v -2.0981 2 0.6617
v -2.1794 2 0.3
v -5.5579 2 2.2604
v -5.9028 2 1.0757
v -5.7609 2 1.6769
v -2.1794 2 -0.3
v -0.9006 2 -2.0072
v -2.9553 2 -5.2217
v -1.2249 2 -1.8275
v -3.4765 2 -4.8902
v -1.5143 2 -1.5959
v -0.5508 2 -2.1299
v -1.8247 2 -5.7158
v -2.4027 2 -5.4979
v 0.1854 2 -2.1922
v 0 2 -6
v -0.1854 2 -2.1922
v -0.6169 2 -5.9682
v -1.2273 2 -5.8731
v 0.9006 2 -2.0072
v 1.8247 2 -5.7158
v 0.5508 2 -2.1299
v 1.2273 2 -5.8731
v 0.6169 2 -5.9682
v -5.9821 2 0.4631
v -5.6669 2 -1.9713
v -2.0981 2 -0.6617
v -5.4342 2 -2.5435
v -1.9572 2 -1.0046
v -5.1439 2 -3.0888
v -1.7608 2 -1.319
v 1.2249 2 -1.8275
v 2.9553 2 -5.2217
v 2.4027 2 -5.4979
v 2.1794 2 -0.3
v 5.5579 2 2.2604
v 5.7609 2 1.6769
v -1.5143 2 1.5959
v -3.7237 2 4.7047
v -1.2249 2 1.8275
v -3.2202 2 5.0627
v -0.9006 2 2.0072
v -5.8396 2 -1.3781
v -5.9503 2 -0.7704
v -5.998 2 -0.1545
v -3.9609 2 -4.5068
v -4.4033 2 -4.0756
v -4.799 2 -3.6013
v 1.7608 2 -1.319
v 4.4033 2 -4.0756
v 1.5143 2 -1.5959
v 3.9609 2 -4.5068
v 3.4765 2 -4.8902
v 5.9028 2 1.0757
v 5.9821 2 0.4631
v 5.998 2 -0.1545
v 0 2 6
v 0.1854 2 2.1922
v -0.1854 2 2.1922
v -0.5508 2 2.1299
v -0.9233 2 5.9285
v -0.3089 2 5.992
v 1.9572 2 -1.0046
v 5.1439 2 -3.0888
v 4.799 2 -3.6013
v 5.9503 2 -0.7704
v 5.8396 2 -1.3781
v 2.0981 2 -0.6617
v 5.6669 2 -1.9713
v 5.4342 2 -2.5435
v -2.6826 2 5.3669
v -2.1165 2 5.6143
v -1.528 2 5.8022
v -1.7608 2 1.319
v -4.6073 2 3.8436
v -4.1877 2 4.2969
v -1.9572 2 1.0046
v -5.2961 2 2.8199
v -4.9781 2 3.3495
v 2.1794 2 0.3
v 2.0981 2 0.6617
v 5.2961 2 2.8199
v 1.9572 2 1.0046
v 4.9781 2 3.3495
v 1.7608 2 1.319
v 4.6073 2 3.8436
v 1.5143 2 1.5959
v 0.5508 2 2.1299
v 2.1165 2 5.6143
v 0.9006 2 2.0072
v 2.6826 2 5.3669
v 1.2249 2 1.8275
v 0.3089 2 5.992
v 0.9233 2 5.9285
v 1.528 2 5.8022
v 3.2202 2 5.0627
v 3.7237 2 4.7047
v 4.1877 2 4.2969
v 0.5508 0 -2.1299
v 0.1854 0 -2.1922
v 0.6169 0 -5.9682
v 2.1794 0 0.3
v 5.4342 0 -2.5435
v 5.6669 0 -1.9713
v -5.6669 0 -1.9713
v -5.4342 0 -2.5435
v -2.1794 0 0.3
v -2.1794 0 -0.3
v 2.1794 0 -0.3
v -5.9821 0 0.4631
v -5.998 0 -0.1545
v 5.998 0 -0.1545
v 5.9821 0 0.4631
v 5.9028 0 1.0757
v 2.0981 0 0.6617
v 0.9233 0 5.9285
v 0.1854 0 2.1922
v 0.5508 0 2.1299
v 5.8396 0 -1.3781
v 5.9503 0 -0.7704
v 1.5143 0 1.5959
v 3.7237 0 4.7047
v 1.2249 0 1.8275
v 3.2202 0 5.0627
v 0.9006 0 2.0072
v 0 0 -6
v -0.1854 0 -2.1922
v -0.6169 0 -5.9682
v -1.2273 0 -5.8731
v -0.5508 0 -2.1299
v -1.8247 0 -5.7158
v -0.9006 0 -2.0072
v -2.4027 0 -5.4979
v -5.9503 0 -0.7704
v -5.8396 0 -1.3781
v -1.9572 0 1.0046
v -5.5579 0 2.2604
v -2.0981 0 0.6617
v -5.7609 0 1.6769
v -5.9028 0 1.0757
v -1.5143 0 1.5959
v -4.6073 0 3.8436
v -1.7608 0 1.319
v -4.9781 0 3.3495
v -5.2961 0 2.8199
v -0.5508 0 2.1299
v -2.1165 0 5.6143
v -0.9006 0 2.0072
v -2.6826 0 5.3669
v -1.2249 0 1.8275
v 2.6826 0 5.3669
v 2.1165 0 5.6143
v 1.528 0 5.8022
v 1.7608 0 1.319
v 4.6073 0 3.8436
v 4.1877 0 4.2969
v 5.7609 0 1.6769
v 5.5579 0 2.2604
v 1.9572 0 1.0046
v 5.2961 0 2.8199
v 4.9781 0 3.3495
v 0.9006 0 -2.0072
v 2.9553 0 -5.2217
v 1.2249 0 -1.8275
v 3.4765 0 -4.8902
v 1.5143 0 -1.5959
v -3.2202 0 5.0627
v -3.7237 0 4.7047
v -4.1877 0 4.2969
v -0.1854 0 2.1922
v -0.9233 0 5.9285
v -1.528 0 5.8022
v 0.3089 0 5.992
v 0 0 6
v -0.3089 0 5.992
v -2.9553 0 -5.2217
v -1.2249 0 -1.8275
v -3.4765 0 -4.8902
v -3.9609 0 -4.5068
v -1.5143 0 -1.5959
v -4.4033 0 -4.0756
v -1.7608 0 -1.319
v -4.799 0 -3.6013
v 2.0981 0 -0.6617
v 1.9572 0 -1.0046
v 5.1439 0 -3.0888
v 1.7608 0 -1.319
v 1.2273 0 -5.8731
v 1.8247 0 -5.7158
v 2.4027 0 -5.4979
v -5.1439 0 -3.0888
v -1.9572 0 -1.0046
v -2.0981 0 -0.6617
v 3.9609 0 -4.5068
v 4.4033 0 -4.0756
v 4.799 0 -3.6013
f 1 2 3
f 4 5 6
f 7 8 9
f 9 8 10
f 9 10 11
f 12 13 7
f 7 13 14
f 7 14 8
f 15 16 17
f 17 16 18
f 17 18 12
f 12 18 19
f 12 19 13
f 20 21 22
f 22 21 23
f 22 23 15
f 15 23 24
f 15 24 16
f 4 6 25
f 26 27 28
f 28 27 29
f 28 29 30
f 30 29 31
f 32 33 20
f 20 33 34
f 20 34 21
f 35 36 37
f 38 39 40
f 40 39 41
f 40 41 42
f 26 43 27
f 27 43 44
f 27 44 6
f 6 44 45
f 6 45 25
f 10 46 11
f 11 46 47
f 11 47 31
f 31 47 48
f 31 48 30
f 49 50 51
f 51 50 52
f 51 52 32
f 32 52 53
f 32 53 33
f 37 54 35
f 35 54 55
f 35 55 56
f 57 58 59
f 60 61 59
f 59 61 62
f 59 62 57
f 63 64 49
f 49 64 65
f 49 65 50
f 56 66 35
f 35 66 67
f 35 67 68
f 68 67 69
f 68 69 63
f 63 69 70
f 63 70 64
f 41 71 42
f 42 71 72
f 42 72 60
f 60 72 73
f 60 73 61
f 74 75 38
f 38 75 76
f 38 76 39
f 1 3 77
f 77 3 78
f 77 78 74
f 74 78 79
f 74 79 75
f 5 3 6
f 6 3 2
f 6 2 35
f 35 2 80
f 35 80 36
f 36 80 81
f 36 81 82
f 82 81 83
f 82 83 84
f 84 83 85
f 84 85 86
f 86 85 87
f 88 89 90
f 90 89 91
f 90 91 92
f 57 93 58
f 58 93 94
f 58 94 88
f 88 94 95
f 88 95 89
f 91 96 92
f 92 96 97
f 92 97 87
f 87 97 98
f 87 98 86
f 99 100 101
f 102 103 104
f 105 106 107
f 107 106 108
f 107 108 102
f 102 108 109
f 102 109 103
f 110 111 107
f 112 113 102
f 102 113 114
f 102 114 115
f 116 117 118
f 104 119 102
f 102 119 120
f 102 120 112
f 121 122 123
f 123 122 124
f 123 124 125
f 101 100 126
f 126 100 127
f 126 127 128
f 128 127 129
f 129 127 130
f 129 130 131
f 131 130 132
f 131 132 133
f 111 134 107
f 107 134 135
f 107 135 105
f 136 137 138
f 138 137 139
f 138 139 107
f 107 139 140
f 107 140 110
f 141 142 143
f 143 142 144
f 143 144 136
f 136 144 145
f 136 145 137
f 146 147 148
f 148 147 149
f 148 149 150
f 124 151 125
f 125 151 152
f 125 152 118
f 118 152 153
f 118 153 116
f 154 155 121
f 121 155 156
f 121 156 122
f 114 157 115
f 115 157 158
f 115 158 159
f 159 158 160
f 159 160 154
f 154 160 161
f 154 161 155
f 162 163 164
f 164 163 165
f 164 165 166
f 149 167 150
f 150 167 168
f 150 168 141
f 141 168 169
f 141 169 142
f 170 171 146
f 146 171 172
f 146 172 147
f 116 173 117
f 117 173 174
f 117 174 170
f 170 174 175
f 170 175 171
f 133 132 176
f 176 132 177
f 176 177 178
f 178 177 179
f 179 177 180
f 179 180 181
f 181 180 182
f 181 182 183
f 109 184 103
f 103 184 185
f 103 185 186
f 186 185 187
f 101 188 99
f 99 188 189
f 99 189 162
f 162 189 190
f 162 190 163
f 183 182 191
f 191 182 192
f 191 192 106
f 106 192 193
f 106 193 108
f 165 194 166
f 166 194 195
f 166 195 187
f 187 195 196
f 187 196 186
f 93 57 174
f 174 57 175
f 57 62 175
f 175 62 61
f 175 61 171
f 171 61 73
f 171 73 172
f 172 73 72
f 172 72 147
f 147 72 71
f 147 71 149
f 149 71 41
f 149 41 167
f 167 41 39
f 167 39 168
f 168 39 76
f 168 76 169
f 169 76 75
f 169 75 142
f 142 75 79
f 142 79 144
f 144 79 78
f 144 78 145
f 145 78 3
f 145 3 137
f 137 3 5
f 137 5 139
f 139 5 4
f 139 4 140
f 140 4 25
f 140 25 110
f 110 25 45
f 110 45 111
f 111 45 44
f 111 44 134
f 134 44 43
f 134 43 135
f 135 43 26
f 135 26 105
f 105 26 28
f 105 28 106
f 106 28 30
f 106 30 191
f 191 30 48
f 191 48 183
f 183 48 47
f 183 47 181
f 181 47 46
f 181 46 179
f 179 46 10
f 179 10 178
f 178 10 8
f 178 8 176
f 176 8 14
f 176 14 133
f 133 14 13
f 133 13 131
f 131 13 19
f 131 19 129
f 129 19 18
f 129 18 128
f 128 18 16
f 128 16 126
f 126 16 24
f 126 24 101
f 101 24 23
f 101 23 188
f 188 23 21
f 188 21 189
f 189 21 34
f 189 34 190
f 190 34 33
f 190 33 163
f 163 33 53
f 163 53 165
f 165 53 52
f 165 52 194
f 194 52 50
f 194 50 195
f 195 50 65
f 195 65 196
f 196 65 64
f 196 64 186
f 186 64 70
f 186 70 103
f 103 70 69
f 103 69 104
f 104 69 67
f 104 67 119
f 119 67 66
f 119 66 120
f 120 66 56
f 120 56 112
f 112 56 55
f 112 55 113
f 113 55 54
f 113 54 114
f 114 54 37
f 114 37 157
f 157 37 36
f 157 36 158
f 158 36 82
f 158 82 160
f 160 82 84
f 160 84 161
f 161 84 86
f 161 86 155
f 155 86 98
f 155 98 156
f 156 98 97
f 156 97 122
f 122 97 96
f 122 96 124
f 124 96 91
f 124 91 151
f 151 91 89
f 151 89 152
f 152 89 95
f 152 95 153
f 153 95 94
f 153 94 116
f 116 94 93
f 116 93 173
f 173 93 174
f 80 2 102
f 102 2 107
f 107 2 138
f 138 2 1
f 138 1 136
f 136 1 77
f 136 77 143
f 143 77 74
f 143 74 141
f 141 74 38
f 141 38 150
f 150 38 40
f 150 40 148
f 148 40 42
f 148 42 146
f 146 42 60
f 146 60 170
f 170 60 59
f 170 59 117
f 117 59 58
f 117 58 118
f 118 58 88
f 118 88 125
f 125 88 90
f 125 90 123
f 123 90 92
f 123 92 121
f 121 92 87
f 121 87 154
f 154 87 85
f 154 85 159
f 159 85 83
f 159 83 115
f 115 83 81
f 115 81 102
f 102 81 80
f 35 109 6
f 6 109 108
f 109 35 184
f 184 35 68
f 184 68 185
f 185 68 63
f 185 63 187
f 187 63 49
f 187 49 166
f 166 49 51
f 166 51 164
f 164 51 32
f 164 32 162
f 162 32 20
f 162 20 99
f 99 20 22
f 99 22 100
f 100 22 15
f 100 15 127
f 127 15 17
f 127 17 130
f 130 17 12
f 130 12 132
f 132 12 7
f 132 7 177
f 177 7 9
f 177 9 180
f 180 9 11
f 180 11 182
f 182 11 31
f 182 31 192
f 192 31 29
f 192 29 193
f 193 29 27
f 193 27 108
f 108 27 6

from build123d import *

# Parameters (mm, degrees)
SKETCH2_R           = 6
BOSS_EXTRUDE1_DEPTH = 2
CUT_EXTRUDE3_DEPTH  = 4


with BuildPart() as part:
    # Sketch2 → Boss-Extrude1 (new body)
    with BuildSketch(Plane(origin=(0, 0, 0), x_dir=(1, 0, 0), z_dir=(0, 1, 0))):
        with Locations(Location((0, 0, 0), (0, 0, 270))):
            Circle(SKETCH2_R)
    extrude(amount=BOSS_EXTRUDE1_DEPTH)

    # Sketch3 → Cut-Extrude3 (cut)
    with BuildSketch(Plane(origin=(0, 2, 0), x_dir=(1, 0, 0), z_dir=(0, 1, 0))):
        with BuildLine():
            Line((-2.179449472, 0.3), (0, 0.3))
            Line((0, 0.3), (2.179449472, 0.3))
            ThreePointArc((2.179449472, 0.3), (0, 2.2), (-2.179449472, 0.3))
        make_face()
        with BuildLine():
            Line((2.179449472, -0.3), (0, -0.3))
            Line((0, -0.3), (-2.179449472, -0.3))
            ThreePointArc((-2.179449472, -0.3), (0, -2.2), (2.179449472, -0.3))
        make_face()
    extrude(amount=-CUT_EXTRUDE3_DEPTH, mode=Mode.SUBTRACT)


solid = part.part
